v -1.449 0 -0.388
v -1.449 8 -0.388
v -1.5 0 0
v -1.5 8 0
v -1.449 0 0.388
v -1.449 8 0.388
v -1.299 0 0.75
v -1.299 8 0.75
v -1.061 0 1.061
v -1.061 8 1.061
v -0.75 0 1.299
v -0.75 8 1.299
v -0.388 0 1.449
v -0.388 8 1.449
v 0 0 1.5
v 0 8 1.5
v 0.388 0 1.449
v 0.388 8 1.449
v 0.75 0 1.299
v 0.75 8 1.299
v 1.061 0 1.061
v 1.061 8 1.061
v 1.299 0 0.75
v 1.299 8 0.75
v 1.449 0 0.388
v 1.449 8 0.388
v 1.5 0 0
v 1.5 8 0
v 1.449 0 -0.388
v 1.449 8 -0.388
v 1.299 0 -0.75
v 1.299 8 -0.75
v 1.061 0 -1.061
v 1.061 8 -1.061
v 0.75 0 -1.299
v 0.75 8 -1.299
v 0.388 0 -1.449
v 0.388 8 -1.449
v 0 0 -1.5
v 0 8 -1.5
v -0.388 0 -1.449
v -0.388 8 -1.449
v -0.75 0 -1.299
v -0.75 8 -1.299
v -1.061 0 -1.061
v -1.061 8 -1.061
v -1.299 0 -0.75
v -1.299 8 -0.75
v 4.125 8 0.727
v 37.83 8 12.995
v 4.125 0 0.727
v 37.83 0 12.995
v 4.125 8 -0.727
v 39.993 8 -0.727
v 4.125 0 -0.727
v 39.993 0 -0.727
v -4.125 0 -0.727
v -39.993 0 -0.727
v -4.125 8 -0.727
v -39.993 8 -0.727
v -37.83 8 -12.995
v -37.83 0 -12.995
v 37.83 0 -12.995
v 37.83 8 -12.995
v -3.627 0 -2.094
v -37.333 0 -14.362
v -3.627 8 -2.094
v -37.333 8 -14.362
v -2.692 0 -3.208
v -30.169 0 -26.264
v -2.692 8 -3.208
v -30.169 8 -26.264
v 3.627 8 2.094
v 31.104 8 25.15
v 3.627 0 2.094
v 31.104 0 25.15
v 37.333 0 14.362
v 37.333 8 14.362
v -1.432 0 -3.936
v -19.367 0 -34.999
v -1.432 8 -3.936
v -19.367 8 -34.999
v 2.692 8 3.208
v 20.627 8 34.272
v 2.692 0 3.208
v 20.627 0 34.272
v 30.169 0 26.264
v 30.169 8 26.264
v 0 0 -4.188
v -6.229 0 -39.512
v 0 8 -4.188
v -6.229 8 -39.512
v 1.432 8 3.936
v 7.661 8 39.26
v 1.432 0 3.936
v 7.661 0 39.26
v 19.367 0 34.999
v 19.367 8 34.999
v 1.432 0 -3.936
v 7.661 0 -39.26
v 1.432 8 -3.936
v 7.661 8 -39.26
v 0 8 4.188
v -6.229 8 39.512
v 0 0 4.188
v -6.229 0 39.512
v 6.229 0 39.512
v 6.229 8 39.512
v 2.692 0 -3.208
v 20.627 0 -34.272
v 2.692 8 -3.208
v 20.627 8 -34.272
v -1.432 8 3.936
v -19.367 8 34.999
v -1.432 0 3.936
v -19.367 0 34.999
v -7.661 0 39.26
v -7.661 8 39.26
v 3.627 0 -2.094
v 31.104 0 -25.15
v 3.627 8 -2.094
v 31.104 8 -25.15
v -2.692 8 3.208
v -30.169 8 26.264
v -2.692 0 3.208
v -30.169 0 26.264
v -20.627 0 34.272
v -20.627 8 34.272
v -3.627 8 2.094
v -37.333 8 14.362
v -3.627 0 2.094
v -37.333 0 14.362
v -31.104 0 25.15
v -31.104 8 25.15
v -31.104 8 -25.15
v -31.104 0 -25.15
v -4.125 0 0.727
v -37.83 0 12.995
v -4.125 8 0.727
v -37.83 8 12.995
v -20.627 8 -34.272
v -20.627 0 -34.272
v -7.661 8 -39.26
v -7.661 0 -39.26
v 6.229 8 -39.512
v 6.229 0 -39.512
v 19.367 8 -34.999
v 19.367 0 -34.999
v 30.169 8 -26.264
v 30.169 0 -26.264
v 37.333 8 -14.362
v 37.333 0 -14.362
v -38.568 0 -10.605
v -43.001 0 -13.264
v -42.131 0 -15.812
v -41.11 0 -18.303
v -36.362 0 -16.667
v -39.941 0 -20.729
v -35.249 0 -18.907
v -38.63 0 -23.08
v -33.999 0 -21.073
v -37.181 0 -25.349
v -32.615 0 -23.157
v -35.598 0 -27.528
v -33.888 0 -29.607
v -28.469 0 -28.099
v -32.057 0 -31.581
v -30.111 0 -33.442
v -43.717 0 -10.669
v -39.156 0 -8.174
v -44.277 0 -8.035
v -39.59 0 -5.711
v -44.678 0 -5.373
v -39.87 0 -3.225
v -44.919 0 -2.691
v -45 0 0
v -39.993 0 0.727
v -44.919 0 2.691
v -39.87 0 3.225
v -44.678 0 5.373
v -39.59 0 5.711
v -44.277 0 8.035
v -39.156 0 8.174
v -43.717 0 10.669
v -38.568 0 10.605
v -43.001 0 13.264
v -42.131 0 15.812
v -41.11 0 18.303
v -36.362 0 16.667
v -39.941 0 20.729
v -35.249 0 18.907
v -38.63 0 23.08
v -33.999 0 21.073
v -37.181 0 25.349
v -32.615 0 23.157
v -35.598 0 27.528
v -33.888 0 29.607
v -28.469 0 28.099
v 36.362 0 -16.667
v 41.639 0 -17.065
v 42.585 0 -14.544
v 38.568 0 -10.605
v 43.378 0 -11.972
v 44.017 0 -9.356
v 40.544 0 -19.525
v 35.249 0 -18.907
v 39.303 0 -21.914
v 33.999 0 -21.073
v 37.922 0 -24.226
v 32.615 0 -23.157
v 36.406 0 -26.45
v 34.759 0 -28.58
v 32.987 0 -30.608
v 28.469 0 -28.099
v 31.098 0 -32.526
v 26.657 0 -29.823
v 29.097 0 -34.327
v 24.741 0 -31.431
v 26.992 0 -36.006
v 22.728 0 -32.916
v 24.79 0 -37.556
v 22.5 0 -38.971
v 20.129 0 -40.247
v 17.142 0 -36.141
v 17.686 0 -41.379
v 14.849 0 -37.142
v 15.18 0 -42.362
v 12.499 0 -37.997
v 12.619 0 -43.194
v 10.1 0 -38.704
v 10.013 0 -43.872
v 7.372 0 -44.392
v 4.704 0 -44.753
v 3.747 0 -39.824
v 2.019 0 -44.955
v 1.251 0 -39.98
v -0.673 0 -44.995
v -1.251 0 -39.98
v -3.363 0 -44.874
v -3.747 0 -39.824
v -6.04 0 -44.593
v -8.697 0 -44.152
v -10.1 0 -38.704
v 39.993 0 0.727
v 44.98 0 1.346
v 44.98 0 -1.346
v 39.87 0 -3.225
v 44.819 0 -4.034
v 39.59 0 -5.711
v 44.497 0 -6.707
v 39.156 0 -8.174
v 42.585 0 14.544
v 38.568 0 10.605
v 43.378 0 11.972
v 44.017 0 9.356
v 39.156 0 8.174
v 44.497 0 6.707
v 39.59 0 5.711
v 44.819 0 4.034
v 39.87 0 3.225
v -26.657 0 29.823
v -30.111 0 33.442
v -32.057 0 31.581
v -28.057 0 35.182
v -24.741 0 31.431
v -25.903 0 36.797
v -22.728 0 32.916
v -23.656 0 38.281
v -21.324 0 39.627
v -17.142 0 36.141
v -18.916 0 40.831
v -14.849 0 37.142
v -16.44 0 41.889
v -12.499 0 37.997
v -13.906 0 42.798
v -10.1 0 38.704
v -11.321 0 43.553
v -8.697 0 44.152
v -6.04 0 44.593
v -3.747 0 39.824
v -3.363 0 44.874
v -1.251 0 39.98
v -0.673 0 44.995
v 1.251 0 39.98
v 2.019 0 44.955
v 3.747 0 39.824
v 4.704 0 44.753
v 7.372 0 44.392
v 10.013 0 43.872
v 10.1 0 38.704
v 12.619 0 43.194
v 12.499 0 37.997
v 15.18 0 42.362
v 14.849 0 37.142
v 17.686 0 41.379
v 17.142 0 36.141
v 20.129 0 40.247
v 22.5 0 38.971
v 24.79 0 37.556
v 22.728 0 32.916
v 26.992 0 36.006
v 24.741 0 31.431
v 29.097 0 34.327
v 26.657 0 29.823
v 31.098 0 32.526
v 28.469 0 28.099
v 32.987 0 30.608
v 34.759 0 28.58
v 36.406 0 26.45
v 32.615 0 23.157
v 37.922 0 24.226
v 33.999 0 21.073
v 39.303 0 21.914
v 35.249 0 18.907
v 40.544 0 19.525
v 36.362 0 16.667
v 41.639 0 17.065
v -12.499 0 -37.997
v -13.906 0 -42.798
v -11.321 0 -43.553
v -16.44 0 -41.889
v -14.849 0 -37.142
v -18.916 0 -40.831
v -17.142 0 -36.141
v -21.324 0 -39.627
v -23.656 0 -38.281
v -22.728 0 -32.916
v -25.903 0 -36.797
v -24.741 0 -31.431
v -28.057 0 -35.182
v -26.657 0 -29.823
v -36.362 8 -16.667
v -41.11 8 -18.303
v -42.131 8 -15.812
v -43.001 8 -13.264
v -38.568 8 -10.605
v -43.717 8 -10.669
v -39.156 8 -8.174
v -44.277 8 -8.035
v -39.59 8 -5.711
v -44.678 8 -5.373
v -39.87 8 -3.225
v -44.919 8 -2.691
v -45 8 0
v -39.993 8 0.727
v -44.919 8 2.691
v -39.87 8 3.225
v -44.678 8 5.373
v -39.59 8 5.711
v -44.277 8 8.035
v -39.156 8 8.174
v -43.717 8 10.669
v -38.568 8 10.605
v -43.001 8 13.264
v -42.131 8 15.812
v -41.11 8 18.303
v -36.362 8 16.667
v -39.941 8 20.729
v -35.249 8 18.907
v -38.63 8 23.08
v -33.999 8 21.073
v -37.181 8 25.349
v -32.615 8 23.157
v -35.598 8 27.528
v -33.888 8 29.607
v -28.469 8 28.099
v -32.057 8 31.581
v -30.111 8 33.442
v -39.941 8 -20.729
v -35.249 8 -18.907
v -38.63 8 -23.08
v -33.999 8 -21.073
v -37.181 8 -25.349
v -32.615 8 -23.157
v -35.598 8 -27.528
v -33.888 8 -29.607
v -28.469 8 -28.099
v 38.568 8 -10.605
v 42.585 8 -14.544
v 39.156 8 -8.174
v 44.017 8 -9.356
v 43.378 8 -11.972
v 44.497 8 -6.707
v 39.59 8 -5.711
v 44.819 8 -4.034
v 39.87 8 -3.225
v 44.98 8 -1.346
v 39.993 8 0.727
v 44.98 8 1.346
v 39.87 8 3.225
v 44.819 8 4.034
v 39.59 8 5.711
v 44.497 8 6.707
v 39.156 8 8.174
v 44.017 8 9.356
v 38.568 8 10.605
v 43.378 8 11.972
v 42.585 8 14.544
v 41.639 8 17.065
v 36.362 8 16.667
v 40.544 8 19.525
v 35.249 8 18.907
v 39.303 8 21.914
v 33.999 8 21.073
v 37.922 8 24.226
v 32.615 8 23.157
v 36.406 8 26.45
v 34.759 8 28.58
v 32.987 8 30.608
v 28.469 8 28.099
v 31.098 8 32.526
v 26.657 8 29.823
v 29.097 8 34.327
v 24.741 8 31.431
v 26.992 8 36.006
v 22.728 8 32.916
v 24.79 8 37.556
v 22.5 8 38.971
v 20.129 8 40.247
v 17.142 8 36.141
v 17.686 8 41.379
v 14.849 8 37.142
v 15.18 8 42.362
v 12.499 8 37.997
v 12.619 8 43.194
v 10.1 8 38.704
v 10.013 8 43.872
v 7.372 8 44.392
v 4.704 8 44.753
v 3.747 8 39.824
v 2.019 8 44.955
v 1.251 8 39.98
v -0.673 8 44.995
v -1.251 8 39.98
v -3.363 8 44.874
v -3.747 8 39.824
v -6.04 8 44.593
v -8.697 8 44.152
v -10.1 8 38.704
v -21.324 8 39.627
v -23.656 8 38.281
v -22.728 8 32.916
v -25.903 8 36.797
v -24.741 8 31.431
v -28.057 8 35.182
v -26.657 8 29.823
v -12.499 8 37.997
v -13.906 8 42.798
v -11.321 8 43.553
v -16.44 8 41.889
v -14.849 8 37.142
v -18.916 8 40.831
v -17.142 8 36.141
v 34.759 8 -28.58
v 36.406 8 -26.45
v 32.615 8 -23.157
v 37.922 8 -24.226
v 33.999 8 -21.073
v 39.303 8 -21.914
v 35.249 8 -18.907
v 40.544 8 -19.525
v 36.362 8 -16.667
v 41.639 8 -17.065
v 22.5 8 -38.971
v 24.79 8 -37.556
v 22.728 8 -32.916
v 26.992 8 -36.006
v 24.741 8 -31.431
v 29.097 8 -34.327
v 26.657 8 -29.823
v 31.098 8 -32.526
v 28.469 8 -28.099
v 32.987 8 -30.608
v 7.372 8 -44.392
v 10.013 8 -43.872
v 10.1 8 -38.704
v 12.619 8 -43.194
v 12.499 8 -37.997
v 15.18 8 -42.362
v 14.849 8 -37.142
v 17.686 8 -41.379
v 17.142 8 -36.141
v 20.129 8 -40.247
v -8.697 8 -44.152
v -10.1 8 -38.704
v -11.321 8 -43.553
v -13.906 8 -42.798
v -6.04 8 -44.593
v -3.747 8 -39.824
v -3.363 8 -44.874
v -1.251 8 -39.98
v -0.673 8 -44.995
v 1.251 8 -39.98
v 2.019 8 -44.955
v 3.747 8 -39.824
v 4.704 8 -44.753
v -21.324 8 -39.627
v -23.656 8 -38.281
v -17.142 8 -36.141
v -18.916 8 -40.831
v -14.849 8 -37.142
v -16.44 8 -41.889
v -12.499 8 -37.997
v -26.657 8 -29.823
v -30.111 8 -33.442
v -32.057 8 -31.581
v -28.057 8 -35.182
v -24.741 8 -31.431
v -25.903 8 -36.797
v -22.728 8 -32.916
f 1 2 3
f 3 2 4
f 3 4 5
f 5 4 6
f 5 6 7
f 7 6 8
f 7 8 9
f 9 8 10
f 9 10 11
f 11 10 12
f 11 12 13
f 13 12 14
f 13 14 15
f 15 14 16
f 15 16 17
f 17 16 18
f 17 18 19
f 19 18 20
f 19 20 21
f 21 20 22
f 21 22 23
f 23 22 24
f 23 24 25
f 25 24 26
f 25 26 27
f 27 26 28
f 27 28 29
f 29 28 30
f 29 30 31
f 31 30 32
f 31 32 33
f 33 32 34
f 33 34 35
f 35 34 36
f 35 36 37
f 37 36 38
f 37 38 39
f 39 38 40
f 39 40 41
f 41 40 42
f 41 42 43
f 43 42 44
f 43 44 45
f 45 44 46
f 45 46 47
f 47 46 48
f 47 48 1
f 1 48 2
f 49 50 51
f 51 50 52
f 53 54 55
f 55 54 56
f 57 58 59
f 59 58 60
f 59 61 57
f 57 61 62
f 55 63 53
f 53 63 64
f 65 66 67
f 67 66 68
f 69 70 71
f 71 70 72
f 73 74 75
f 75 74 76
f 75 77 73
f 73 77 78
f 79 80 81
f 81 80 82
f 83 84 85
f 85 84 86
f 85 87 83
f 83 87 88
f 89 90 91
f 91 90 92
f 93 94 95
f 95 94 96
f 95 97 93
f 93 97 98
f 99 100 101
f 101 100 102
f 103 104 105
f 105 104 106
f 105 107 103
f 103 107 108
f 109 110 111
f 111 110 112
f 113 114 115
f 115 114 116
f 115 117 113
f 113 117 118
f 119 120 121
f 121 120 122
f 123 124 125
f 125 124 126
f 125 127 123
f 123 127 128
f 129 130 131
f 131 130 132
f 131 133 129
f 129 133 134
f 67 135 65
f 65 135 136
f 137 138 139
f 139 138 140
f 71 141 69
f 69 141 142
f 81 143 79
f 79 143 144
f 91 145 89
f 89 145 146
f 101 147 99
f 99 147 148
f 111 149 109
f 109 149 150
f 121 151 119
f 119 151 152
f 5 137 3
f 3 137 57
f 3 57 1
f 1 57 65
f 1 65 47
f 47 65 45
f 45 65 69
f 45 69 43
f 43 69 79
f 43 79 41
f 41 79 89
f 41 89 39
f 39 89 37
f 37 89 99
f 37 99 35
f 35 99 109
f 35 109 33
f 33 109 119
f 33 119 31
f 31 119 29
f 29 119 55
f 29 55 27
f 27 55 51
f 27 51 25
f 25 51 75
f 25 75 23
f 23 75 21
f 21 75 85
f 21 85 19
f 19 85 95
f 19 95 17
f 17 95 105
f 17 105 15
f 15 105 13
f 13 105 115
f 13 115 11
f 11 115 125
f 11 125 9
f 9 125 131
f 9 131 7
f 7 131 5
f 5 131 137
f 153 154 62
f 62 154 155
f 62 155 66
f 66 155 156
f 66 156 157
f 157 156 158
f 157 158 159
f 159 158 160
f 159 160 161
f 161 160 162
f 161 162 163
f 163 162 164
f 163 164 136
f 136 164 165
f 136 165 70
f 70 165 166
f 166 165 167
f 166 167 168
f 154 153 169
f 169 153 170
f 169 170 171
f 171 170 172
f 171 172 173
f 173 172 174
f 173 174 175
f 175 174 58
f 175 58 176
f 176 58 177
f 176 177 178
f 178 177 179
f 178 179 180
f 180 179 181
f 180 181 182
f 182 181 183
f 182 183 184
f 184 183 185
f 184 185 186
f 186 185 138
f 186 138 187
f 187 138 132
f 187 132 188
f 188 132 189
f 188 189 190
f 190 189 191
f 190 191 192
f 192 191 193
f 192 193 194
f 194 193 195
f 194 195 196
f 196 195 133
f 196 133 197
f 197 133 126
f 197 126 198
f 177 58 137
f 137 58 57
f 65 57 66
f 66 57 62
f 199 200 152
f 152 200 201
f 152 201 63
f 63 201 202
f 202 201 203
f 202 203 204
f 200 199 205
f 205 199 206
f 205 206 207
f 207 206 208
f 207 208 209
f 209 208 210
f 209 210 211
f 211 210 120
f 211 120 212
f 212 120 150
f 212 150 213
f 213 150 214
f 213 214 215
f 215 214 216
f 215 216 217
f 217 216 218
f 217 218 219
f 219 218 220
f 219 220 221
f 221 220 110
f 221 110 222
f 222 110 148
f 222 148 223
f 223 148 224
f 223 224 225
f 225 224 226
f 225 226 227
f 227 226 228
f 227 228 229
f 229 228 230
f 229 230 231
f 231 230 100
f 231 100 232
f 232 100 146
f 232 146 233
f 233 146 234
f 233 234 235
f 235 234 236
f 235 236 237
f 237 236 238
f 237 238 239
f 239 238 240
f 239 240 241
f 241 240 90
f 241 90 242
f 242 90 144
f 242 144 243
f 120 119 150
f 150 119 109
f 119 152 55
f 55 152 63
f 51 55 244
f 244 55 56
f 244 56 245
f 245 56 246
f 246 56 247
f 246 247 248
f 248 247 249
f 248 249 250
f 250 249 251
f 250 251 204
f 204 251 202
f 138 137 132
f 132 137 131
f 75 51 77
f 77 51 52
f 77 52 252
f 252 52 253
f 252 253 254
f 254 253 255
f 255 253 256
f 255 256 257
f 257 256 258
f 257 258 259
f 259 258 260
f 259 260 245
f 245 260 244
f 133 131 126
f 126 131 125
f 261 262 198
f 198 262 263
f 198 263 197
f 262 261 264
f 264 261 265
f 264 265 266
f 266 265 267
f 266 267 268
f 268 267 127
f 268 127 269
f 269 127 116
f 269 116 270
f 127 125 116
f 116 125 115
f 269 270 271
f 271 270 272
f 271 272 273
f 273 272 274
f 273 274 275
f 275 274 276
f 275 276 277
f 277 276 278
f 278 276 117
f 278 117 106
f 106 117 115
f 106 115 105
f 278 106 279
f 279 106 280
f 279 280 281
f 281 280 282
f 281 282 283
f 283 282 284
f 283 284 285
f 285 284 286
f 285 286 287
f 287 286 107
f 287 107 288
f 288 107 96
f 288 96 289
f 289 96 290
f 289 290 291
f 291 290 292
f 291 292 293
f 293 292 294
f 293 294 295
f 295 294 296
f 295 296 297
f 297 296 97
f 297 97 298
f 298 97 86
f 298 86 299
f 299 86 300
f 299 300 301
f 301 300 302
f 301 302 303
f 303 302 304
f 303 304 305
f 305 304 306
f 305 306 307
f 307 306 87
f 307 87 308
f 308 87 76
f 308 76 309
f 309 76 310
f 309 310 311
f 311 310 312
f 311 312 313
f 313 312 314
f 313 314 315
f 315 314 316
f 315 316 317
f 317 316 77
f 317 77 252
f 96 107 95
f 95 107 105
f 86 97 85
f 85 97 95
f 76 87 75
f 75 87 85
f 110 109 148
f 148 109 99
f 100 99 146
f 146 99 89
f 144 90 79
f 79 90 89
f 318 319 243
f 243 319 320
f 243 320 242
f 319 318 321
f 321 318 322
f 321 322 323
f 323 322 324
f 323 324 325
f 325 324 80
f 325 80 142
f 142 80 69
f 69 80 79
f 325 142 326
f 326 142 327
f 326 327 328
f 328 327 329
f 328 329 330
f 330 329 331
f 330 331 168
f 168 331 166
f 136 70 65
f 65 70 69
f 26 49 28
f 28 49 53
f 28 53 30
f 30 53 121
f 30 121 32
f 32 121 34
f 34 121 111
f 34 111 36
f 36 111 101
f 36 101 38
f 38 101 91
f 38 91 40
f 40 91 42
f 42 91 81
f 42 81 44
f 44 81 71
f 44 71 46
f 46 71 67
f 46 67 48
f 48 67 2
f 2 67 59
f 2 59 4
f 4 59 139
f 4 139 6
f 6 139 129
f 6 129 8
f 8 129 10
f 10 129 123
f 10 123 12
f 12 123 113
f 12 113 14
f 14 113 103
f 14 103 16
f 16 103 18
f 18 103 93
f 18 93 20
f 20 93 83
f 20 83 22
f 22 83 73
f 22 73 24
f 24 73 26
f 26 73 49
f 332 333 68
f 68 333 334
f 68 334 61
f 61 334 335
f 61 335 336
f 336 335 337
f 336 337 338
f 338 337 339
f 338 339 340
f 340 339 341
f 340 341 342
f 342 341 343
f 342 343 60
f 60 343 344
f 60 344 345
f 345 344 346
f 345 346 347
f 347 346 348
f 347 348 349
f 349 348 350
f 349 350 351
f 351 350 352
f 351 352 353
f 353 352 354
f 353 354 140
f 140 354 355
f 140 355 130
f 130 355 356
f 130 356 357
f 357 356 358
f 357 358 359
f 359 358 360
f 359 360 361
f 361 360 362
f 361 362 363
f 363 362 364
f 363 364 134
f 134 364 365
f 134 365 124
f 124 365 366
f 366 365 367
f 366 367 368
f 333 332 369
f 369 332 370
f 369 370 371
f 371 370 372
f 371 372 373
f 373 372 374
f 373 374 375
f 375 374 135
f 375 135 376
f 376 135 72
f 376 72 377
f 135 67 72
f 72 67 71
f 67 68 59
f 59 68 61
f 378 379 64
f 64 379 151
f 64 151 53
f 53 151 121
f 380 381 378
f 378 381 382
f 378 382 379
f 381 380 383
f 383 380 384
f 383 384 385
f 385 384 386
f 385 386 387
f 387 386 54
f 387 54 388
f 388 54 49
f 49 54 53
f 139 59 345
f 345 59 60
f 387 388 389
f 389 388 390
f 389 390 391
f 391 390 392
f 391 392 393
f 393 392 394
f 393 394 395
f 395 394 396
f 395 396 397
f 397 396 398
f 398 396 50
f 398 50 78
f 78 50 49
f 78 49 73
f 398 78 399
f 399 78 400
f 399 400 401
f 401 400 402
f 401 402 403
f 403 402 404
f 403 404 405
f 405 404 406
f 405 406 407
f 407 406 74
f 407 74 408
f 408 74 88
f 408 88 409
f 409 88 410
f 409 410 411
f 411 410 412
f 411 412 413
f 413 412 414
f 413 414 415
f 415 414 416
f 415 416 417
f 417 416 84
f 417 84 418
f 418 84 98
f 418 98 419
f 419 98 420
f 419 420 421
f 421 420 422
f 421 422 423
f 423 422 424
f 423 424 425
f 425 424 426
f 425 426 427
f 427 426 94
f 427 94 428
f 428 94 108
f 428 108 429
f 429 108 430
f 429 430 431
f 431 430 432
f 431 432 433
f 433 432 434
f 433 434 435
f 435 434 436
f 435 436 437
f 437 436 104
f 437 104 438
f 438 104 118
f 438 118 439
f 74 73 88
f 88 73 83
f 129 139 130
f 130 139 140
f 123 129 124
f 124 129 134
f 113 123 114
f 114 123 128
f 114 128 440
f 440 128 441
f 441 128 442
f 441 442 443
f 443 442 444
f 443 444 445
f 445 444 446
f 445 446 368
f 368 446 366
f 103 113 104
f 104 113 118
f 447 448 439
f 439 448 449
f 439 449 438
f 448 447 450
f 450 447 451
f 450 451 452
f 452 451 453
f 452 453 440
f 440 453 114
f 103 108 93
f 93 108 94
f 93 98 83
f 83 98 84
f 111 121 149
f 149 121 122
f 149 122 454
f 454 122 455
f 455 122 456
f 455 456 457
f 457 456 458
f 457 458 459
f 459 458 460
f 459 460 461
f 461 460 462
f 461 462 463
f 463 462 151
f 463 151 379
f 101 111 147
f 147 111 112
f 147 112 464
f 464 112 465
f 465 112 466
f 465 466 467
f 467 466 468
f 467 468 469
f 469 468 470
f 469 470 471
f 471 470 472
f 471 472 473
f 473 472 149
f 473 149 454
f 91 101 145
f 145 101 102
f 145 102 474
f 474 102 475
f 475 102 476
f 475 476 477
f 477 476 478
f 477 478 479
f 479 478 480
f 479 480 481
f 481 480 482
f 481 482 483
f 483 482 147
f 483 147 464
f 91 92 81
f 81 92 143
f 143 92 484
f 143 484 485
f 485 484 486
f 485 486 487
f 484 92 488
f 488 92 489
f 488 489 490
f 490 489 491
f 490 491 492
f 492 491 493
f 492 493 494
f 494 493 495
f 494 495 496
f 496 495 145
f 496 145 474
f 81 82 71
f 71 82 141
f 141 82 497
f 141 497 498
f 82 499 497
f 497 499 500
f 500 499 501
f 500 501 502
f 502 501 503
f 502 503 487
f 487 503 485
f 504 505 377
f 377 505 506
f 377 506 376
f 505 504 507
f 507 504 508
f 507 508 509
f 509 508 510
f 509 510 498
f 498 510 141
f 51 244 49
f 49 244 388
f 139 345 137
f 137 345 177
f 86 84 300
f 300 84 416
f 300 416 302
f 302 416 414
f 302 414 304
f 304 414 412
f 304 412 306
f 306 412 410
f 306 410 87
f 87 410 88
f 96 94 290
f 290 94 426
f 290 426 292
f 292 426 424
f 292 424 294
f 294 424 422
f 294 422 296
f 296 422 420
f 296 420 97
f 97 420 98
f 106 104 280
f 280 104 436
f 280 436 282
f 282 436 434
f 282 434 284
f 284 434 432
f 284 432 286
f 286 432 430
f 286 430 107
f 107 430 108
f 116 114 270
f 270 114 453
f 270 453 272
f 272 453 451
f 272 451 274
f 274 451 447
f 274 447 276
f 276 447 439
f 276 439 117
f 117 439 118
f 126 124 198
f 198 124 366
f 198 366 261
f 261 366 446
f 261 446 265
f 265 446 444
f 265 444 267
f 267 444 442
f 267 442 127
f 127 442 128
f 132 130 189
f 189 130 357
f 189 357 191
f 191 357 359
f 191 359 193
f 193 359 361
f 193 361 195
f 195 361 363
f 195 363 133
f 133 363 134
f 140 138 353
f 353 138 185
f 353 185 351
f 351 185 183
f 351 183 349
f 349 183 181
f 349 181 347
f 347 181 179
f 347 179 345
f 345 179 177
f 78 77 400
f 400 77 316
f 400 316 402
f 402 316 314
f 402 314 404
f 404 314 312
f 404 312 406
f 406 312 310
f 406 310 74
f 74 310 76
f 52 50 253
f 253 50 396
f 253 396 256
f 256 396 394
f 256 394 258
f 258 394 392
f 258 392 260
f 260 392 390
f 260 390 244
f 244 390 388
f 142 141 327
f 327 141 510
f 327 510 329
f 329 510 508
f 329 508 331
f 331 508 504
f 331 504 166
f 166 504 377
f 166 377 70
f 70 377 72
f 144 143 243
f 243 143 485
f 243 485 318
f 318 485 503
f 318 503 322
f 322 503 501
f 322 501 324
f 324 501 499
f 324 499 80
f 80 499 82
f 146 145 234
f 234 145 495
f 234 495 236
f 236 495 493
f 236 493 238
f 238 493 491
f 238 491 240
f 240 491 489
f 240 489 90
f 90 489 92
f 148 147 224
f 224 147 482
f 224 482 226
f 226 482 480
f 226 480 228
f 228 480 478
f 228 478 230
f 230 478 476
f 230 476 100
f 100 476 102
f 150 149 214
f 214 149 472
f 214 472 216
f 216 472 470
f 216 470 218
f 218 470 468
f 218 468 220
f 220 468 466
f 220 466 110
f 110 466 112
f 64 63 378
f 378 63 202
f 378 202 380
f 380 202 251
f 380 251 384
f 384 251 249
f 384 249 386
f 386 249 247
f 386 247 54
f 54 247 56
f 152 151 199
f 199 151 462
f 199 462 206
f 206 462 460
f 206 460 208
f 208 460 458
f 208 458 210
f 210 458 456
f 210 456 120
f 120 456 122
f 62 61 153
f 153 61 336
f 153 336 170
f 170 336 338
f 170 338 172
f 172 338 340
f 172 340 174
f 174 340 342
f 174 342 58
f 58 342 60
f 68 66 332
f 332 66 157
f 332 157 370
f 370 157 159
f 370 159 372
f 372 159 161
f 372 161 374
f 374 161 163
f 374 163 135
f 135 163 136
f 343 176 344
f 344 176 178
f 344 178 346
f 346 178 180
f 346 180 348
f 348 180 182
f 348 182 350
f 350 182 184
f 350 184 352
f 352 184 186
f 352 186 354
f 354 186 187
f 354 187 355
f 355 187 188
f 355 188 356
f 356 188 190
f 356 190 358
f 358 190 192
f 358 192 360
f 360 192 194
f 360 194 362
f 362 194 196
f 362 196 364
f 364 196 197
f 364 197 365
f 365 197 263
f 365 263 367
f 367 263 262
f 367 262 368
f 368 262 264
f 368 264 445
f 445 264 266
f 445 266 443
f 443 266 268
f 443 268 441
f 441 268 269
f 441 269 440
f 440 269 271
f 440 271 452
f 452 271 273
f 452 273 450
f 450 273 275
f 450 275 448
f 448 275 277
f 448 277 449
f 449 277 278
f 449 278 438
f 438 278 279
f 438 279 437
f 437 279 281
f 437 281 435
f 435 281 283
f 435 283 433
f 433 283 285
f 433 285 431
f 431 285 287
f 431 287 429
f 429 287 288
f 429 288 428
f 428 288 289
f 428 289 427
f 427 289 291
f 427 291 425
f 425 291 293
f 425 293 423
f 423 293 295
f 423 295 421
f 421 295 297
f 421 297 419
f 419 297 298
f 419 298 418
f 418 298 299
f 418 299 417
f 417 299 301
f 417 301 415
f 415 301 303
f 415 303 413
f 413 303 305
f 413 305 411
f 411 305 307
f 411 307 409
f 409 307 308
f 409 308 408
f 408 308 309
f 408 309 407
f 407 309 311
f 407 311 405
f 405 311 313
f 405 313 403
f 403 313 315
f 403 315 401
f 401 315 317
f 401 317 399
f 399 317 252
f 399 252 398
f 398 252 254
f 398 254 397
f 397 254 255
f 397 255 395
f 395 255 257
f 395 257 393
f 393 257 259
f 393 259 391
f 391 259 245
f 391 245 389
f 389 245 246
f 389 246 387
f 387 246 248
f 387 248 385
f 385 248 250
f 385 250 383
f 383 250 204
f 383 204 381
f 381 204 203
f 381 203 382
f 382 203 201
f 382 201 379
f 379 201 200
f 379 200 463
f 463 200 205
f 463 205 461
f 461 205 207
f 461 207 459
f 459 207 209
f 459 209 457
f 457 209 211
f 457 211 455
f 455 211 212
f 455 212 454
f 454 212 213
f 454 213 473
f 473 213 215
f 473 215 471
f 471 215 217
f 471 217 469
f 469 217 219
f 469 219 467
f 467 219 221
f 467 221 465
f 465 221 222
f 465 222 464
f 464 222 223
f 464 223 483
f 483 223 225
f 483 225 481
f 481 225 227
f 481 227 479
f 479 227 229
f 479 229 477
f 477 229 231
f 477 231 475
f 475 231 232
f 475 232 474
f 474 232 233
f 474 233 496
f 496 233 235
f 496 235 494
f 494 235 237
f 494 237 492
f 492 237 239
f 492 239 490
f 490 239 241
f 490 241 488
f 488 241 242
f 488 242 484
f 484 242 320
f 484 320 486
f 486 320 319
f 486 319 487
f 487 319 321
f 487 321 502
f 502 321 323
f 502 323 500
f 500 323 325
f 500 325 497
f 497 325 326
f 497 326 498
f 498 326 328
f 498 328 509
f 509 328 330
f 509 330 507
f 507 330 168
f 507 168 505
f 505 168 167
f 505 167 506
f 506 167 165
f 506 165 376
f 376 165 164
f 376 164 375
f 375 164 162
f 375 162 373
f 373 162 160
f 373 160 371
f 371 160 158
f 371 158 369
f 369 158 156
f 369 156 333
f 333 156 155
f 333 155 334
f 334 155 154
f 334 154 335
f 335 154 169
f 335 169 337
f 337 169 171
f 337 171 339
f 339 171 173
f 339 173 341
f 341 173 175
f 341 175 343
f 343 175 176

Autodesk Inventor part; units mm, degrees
ref_plane "YZ Plane" through (0, 0, 0) normal (1, 0, 0) x (0, 1, 0)
ref_plane "XZ Plane" through (0, 0, 0) normal (0, 1, 0) x (-1, 0, 0)
ref_plane "XY Plane" through (0, 0, 0) normal (0, 0, 1) x (1, 0, 0)
sketch "Sketch1" plane through (0, 0, 0) normal (0, 1, 0) x (-1, 0, 0)
  circle A0 centre (0, 0) radius 45
  circle A1 centre (0, 0) radius 40
  line L0 (40, 0) -> (-70, 0)
  line L1 (-39.9934, 0.7273) -> (39.9934, 0.7273)
  point P0 (-40, 0)
  dimension "d0" = 90
  dimension "d1" = 80
extrude "Extrusion1" add sketch "Sketch1" along normal blind 8
extrude "Extrusion2" add sketch "Sketch1" along normal blind 8 contours A1 L1 L0
pattern_circular "Circular Pattern1" count 18 over 360 about axis through (0, -10, 0) along (0, 1, 0) of "Extrusion2"
sketch "Sketch2" plane through (0, 8, 0) normal (0, 1, 0) x (1, 0, 0)
  circle A0 centre (0, 0) radius 1.5
  dimension "d9" = 3
hole "Hole1" at (0, 8, 0) direction (0, -1, 0) diameter 3 end through all
thread "Thread1" size "M3x0.5" class "6H" standard "ANSI Metric M Profile" full length
properties part number "Tyres"
